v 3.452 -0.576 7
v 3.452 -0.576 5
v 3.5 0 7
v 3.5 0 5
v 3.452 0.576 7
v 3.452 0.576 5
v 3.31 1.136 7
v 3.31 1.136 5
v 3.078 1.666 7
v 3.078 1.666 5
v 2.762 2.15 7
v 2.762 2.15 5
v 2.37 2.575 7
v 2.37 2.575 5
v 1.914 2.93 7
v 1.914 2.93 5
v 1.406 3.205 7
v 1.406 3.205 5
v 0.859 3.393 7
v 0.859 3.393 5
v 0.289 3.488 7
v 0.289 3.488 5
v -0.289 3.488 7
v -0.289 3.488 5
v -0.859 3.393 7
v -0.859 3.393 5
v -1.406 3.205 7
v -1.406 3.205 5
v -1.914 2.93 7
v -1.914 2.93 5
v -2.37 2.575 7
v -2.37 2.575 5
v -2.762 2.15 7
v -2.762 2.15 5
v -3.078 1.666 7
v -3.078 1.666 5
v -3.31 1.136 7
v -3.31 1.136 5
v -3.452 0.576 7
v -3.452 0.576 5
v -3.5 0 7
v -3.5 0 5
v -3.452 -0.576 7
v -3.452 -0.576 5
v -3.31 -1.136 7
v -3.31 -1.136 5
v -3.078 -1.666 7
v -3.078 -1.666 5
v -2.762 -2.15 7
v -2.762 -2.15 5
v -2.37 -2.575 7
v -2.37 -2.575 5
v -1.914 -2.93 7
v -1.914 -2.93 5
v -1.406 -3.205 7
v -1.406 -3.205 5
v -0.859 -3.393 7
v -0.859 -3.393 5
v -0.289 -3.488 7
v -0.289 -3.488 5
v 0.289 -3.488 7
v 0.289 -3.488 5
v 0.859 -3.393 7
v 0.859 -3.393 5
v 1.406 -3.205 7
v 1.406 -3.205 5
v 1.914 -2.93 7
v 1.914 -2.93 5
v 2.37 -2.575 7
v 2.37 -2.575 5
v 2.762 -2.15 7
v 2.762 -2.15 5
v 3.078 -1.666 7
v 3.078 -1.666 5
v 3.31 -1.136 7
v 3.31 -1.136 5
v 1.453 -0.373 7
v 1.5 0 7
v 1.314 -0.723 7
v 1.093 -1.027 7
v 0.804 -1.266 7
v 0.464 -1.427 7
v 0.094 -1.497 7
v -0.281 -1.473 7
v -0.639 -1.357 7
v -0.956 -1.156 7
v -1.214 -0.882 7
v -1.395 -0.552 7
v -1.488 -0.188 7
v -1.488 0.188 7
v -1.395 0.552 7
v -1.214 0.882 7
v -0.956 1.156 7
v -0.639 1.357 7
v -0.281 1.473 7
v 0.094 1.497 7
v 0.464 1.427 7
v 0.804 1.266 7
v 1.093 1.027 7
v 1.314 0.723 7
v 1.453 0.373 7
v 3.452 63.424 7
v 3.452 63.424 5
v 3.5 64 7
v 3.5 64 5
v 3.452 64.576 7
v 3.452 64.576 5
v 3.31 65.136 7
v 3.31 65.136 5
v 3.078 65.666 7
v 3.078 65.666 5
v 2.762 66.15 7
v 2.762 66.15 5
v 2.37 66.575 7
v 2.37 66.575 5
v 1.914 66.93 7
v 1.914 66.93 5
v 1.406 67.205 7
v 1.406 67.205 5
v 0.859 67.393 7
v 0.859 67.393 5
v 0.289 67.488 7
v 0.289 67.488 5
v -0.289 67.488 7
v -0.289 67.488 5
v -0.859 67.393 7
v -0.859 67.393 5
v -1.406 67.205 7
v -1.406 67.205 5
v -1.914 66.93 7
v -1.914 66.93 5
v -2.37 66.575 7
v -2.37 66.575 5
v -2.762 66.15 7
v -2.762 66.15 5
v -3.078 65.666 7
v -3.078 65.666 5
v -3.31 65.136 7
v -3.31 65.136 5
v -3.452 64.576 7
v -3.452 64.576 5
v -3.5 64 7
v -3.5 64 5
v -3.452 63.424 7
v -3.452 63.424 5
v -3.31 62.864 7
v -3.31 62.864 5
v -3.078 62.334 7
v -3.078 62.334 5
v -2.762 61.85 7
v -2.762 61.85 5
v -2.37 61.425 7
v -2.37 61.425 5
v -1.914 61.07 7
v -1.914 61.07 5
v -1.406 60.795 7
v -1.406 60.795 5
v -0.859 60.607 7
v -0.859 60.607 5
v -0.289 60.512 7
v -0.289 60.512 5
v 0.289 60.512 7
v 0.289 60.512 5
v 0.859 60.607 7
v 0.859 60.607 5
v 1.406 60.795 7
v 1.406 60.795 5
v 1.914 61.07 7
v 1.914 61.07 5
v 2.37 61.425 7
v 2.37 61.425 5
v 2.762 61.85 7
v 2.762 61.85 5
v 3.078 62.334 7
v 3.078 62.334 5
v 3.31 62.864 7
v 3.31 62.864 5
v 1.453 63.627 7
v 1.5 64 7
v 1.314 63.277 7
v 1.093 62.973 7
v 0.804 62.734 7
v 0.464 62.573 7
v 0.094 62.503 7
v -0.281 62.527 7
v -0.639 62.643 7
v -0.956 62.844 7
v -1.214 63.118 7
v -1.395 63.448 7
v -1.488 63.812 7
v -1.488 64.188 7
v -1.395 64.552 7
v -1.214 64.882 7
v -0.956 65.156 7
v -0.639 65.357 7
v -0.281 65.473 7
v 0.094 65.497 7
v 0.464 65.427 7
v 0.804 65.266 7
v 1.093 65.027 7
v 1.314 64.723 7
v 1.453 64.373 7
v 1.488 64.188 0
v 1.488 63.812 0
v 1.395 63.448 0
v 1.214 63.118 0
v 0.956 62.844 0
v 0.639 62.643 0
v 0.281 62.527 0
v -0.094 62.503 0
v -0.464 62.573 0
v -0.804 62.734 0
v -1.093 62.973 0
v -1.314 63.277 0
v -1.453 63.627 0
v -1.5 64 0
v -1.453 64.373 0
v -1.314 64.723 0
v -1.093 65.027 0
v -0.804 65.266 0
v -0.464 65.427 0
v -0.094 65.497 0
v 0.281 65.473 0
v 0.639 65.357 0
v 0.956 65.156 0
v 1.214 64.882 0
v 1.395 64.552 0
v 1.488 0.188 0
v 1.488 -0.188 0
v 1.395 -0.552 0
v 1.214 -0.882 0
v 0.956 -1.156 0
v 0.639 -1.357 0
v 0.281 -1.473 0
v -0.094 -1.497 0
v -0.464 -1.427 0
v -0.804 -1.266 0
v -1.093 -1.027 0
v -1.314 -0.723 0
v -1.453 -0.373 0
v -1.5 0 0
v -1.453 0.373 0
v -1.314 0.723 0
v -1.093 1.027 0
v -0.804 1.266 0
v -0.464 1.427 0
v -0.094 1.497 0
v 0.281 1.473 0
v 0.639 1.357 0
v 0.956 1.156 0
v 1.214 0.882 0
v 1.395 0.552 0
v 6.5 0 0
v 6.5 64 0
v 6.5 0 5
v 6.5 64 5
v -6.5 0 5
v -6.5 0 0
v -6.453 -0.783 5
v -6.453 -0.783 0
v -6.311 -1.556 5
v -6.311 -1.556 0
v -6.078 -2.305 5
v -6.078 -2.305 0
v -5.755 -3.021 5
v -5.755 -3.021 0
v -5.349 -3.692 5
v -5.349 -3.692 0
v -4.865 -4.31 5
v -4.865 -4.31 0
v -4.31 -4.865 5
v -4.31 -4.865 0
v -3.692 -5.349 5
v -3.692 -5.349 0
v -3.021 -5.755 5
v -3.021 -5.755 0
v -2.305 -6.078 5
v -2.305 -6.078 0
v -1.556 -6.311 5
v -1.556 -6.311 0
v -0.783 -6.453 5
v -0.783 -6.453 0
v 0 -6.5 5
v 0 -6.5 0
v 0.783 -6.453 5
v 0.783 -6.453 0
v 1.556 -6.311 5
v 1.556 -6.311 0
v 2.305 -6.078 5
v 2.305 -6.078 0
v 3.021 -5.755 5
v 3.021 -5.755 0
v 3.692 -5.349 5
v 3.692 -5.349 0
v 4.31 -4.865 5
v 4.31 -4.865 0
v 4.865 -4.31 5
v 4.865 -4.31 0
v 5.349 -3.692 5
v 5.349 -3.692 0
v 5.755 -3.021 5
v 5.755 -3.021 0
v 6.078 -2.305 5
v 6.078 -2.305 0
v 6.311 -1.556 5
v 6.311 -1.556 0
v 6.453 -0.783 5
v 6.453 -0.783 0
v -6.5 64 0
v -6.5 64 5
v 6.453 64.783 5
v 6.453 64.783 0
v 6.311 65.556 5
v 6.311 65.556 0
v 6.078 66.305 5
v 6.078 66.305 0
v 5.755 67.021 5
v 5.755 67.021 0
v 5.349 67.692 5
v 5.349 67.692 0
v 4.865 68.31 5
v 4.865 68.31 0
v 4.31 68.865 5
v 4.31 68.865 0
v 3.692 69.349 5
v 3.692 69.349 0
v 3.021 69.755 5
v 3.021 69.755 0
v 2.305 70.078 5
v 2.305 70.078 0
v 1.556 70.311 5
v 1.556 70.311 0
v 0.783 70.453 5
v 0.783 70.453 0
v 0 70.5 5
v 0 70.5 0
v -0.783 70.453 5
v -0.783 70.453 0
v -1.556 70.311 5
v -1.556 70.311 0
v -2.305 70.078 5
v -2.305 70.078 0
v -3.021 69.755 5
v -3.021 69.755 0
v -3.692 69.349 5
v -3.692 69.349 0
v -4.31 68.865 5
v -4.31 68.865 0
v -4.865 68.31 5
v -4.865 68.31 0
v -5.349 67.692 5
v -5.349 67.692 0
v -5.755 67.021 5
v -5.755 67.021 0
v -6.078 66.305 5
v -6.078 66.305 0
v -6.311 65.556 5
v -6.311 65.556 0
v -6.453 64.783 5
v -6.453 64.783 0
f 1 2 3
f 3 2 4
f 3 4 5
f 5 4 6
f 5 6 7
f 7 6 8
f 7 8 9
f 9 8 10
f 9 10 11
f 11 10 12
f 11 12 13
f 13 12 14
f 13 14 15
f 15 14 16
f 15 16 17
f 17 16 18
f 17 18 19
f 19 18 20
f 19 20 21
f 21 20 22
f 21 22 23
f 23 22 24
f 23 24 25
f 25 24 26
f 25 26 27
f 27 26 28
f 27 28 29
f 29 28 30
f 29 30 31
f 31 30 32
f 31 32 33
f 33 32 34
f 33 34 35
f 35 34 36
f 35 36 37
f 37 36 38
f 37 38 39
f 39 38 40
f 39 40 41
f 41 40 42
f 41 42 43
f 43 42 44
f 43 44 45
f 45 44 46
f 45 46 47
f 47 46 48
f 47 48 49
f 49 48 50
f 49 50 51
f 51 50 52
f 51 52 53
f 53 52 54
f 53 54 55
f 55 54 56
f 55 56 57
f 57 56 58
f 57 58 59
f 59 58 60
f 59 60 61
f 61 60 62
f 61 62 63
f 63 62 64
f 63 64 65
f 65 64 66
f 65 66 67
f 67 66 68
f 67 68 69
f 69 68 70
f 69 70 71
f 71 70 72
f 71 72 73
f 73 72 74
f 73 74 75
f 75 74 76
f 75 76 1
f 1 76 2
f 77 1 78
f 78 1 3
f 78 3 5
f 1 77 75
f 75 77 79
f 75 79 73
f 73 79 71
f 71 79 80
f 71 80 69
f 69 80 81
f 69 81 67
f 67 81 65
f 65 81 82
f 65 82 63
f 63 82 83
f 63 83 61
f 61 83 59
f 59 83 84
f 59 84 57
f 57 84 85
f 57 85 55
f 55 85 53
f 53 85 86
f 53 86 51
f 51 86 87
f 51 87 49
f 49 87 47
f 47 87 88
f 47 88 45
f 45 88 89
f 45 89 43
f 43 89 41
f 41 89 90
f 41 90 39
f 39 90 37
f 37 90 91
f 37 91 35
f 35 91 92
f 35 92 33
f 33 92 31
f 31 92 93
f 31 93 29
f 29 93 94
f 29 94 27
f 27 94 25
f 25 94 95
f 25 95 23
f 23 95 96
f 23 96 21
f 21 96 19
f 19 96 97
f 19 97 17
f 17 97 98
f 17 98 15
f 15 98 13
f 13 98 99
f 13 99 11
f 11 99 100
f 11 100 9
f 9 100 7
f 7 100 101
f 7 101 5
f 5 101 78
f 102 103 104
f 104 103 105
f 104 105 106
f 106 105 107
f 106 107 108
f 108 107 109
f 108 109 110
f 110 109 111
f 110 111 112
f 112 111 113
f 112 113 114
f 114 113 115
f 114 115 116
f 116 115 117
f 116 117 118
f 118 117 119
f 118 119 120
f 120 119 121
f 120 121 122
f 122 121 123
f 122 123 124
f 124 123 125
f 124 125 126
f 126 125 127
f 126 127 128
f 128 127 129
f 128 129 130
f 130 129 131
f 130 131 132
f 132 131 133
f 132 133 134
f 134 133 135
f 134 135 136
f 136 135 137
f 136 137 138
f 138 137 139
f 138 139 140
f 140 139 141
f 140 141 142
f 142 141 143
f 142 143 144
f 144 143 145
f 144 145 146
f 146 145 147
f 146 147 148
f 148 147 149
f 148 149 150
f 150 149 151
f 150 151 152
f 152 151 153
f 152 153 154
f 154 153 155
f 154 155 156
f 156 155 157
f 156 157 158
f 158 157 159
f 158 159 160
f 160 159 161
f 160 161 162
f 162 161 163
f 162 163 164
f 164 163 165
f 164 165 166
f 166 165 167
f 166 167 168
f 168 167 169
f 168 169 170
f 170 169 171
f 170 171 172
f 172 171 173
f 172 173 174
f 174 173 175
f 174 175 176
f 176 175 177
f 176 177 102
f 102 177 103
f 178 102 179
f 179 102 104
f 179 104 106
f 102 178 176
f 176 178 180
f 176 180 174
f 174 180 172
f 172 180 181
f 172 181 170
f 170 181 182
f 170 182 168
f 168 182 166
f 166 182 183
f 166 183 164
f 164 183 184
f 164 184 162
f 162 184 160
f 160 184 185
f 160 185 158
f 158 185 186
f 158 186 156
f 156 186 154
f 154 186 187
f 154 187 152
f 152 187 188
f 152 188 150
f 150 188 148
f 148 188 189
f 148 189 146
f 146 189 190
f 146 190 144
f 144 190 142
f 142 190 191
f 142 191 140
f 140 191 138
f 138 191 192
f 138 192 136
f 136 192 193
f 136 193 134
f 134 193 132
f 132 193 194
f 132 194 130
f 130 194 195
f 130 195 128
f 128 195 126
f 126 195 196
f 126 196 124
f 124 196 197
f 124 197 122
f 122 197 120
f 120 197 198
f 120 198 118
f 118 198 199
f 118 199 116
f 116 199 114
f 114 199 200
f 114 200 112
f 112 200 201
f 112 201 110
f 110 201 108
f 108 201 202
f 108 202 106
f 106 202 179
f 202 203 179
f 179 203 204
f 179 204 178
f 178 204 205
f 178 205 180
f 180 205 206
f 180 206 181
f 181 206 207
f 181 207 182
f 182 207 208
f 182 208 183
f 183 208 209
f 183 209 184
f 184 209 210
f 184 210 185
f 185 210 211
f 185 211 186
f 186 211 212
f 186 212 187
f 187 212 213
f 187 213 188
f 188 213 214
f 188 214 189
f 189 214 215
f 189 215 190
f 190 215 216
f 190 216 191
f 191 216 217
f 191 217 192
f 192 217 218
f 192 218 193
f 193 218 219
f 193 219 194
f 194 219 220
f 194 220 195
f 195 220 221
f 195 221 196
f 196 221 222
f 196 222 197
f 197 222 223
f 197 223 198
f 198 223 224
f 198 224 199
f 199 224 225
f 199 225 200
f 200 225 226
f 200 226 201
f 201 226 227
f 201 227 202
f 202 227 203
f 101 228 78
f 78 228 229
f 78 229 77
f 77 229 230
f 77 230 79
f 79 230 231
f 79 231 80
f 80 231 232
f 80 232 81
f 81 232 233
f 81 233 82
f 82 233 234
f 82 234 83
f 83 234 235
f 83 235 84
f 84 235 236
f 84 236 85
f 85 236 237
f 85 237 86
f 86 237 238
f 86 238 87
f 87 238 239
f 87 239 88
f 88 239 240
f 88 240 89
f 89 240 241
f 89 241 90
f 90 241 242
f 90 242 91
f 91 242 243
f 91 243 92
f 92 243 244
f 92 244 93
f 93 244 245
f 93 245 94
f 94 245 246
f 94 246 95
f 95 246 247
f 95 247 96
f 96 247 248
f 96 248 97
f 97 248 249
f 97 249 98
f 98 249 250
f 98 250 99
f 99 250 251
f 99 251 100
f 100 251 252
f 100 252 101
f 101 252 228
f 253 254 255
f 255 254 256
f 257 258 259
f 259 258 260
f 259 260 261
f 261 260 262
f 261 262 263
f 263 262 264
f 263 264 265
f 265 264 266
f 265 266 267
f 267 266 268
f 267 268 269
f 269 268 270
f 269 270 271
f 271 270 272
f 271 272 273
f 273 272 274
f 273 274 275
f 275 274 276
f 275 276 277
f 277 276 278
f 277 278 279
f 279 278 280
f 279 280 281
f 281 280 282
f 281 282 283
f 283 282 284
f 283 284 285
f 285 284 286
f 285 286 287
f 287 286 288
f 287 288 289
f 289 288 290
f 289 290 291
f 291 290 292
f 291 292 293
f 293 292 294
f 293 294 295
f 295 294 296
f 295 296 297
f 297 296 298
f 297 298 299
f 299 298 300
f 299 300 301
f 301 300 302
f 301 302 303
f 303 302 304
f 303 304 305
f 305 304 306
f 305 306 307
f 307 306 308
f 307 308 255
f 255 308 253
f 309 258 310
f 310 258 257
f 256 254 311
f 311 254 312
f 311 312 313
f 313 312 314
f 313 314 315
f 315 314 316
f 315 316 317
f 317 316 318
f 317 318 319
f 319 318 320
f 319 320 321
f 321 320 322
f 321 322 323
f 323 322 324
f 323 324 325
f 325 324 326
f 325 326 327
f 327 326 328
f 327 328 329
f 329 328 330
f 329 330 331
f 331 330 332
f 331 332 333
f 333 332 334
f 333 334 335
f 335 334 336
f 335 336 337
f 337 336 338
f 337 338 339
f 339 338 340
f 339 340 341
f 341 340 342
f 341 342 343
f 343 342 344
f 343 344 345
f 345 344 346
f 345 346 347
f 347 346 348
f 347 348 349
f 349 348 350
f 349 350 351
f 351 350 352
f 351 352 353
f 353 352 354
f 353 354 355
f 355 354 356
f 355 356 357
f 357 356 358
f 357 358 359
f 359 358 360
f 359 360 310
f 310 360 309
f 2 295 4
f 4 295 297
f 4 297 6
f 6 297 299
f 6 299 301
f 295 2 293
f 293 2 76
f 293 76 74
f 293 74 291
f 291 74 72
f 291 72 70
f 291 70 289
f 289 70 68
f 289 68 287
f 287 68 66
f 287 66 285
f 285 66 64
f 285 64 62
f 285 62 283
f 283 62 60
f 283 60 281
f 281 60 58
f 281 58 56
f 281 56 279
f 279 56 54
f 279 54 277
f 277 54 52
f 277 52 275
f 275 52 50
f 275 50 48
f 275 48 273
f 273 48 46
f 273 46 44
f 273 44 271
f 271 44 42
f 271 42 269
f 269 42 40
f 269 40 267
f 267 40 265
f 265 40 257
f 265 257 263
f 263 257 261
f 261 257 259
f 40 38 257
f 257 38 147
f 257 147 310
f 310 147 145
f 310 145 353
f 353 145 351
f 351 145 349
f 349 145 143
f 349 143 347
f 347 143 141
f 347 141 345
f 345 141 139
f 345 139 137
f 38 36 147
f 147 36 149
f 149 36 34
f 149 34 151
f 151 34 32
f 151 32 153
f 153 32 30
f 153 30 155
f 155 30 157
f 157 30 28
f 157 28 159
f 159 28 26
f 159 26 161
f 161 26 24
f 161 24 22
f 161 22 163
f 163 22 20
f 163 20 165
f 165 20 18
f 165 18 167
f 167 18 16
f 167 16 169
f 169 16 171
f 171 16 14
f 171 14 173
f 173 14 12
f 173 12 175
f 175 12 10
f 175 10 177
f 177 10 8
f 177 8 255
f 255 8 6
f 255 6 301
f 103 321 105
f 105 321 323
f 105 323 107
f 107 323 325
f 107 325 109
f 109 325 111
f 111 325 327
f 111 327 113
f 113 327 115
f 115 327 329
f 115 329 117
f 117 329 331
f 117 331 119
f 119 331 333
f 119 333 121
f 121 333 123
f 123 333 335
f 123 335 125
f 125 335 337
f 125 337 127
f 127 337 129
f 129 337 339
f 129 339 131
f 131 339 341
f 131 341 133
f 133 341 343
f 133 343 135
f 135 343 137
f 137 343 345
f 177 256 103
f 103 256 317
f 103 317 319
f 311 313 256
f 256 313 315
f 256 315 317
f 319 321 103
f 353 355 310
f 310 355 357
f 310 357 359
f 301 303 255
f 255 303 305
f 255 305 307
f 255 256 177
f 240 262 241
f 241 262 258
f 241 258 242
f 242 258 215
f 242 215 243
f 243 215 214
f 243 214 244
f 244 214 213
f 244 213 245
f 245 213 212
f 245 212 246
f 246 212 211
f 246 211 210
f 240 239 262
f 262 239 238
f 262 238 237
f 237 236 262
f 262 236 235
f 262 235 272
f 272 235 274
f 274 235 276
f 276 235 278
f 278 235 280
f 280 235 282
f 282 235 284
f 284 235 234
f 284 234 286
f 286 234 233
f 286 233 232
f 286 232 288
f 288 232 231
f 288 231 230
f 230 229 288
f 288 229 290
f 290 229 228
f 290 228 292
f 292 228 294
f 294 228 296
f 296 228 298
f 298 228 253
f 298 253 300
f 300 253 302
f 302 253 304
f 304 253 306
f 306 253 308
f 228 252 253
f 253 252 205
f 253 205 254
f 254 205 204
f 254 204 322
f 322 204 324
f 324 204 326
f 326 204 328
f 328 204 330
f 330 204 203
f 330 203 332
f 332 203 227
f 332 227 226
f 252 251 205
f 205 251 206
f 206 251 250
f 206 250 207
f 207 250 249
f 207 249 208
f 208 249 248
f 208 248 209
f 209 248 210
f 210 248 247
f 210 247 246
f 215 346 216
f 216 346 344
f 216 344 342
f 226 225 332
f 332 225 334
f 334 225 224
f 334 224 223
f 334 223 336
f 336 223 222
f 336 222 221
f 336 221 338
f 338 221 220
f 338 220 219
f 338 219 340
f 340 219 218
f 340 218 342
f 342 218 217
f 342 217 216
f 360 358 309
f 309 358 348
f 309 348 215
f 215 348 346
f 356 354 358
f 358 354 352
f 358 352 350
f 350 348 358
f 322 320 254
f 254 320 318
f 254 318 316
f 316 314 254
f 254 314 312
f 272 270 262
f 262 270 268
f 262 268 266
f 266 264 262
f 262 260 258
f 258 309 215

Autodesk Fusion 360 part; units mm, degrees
sketch "Esquisse1" plane through (0, 0, 0) normal (0, 0, 1) x (1, 0, 0)
  circle A0 centre (0, 0) radius 6.5
  circle A1 centre (0, 64) radius 6.5
  line L0 (0, 64) -> (0, 0)
  line L1 (0, 64) -> (6.5, 64)
  line L2 (0, 64) -> (-6.5, 64)
  line L3 (0, 0) -> (6.5, 0)
  line L4 (0, 0) -> (-6.5, 0)
  line L5 (6.5, 64) -> (6.5, 0)
  line L6 (-6.5, 64) -> (-6.5, 0)
  circle A2 centre (0, 64) radius 1.5
  circle A3 centre (0, 0) radius 1.5
  dimension "d1" = 13
  dimension "d2" = 13
  dimension "d3" = 64
  dimension "d4" = 3
  dimension "d5" = 3
extrude "Extrusion1" add sketch "Esquisse1" along normal blind 5 contours A0 L3 L4 A3 | A0 A1 L0 L6 | A0 L0 L4 A3 | A0 L0 L3 A3 | A0 A1 L0 L5 | A1 L0 L2 A2 | A1 L1 L2 A2 | A1 L0 L1 A2
sketch "Esquisse2" plane through (0, 0, 5) normal (0, 0, 1) x (-1, 0, 0)
  circle A0 centre (0, 0) radius 1.5
  circle A1 centre (0, -64) radius 1.5
  arc A2 (-6.5, -64) -> (6.5, -64) centre (0, -64) ccw
  line L0 (6.5, -64) -> (6.5, 0)
  arc A3 (6.5, 0) -> (-6.5, 0) centre (0, 0) ccw
  line L1 (-6.5, 0) -> (-6.5, -64)
  circle A4 centre (0, -64) radius 3.5
  circle A5 centre (0, -64) radius 1.5
  circle A6 centre (0, 0) radius 1.5
  circle A7 centre (0, 0) radius 3.5
  dimension "d8" = 3
  dimension "d9" = 7
  dimension "d10" = 3
  dimension "d11" = 7
extrude "Extrusion2" add sketch "Esquisse2" along normal blind 2 contours A4 | A7
